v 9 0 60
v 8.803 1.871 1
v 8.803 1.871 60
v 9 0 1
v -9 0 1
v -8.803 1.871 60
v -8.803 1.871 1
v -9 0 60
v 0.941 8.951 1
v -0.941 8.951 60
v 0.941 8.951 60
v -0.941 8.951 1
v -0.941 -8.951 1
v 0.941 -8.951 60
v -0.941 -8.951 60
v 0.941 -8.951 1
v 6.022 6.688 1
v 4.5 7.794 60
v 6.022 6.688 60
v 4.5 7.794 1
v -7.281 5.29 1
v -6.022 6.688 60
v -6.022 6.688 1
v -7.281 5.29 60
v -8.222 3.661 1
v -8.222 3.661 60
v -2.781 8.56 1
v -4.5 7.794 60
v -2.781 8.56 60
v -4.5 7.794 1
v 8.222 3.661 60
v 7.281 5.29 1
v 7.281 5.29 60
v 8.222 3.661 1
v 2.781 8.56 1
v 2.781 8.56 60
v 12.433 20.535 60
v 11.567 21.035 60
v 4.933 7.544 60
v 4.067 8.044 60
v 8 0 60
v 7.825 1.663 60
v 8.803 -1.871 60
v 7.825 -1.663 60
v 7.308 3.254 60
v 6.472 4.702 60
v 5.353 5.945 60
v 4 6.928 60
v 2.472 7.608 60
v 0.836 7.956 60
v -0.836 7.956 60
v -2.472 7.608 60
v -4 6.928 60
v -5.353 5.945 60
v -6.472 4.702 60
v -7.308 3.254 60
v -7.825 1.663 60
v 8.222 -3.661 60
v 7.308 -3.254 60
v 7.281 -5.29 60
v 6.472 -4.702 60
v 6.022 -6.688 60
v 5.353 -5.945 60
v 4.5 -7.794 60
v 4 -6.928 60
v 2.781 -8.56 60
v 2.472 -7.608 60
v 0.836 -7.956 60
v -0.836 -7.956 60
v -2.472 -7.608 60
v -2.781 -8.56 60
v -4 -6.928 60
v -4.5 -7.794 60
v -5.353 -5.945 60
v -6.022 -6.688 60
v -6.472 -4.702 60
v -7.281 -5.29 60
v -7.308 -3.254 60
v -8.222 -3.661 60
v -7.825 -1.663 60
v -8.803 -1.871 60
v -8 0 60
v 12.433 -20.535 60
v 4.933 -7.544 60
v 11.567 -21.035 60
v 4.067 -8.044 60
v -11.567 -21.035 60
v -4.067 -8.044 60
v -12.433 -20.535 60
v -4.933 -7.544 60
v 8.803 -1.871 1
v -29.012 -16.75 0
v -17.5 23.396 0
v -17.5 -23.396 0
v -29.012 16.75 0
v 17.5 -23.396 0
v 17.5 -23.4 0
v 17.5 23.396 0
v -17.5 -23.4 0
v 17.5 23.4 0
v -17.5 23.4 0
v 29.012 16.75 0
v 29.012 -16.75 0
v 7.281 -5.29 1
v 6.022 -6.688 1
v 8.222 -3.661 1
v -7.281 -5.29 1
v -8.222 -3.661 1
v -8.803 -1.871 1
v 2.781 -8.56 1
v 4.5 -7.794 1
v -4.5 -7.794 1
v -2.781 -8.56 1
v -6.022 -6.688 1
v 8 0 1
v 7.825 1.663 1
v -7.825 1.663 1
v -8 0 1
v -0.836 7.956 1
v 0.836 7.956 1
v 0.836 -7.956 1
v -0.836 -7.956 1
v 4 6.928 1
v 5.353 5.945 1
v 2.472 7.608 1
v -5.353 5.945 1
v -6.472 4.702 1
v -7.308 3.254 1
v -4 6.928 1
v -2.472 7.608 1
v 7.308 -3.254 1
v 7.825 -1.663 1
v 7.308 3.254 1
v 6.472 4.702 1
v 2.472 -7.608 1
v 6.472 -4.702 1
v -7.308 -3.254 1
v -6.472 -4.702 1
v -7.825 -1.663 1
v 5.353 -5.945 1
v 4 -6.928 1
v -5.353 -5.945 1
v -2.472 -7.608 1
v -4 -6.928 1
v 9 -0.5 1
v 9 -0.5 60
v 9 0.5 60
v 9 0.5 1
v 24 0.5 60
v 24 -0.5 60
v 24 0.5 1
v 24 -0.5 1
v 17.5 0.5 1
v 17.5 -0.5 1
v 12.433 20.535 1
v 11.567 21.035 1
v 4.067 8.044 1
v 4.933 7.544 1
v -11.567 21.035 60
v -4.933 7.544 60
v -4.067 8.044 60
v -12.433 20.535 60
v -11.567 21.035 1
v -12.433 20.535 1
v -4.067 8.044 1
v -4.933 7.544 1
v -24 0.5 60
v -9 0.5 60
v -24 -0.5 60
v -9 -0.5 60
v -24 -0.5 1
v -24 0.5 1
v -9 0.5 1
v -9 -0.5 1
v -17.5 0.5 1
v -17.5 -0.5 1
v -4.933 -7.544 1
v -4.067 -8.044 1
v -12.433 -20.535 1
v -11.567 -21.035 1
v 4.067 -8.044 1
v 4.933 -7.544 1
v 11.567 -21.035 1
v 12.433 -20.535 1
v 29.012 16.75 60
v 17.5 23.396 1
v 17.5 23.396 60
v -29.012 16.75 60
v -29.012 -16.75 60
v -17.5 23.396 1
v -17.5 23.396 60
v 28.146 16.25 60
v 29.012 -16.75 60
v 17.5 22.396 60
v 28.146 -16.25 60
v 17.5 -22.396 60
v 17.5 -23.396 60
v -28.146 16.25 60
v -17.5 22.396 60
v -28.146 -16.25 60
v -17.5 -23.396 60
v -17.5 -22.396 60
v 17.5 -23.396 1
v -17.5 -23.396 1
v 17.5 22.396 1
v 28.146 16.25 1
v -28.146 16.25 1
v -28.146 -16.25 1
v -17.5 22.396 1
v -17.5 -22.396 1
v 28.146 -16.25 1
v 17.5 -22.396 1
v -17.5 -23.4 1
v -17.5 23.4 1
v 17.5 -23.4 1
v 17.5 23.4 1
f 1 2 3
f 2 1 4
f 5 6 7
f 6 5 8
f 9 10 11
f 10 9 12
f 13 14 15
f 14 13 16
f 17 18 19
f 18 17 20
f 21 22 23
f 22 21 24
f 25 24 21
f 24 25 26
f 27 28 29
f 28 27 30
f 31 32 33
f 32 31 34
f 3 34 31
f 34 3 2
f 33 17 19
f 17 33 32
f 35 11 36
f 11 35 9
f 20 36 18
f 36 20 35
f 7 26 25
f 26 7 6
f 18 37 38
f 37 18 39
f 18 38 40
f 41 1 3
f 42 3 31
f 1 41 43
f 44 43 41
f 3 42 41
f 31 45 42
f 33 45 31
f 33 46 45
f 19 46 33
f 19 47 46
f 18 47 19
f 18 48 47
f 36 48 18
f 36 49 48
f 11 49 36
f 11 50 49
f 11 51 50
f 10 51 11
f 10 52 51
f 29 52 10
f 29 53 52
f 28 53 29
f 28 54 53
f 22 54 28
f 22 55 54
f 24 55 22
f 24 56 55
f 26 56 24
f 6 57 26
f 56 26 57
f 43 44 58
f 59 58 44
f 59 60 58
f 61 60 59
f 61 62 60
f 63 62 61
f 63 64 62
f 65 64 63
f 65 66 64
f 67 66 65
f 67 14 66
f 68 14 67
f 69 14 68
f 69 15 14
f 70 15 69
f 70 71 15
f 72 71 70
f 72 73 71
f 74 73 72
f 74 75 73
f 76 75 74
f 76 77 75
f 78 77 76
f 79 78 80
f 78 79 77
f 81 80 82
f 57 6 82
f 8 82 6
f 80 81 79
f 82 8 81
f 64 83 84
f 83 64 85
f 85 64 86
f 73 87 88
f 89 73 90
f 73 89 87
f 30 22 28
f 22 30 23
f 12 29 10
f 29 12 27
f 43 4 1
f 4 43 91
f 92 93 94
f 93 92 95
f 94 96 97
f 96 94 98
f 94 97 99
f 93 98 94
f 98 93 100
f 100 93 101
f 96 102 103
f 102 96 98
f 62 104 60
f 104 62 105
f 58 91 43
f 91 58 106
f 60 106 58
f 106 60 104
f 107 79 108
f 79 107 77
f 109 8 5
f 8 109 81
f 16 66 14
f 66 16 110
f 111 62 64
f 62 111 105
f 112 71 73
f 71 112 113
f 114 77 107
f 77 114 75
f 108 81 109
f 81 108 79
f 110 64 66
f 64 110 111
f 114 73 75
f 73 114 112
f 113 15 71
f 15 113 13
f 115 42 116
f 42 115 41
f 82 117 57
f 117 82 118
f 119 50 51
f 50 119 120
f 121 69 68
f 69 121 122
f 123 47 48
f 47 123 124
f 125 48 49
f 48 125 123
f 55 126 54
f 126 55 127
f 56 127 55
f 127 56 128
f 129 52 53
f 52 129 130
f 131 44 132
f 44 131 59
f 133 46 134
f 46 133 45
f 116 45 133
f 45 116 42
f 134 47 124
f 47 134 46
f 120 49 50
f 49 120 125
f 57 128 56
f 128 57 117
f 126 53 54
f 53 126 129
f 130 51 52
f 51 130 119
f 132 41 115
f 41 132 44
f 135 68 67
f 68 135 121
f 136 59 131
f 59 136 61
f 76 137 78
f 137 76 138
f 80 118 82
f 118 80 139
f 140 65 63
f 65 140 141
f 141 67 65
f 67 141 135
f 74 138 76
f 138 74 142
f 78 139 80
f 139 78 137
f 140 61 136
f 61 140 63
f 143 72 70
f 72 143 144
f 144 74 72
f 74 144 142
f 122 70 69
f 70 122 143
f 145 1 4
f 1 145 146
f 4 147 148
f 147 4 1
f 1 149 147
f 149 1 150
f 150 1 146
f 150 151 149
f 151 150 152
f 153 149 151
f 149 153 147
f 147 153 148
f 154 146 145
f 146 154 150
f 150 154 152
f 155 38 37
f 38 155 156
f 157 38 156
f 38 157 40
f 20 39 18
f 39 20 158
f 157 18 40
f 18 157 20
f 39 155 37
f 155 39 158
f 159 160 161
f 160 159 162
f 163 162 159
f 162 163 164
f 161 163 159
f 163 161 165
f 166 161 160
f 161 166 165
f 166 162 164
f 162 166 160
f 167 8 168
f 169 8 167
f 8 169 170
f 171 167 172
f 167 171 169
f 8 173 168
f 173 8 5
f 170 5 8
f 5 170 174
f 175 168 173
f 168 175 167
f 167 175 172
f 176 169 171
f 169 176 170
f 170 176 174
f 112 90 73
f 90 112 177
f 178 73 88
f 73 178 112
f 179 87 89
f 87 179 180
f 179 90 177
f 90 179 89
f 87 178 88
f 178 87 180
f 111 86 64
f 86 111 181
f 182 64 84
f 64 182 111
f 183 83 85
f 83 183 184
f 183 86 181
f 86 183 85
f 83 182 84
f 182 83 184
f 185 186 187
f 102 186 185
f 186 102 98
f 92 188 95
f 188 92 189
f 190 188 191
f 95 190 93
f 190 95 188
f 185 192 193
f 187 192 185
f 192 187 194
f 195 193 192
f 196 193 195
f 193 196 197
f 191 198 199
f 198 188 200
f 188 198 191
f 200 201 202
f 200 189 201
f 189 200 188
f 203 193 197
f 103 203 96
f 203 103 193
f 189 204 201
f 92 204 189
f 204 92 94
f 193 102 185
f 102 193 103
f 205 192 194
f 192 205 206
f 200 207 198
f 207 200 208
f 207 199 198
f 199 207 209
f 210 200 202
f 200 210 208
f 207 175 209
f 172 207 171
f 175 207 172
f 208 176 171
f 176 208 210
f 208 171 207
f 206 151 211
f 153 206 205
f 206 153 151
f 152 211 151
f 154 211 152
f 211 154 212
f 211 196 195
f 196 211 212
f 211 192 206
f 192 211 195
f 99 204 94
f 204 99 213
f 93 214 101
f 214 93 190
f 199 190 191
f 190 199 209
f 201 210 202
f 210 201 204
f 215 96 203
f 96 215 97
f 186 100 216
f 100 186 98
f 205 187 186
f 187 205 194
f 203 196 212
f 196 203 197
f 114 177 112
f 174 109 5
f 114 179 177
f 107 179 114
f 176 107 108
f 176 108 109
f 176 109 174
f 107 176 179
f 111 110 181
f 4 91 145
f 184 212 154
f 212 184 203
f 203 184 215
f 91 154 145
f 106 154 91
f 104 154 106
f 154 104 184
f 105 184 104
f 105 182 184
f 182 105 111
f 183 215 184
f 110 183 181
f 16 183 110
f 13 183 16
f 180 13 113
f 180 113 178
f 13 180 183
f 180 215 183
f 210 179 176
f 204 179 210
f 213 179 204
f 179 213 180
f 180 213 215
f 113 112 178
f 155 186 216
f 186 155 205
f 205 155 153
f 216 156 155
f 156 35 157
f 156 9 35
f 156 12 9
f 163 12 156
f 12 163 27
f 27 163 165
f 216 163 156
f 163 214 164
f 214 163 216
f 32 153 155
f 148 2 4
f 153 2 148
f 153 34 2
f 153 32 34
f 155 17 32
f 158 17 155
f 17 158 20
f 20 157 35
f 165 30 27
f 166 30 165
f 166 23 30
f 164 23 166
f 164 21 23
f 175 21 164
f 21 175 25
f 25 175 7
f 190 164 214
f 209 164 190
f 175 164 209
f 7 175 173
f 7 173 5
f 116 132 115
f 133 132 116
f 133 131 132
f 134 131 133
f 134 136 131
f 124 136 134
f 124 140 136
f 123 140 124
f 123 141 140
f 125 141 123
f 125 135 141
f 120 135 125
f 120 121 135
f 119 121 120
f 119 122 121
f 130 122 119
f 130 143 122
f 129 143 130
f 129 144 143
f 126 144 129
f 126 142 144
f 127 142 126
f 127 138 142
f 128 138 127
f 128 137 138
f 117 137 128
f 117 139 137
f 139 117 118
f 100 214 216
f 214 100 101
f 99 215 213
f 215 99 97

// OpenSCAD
$fn=30;

difference(){
    cylinder(d=18,h=60);
    translate([0,0,-1])cylinder(d=16,h=62);
}

for (j=[0:60:300]){
    rotate([0,0,j])
    translate([9,-.5,0])
    cube([15,1,60]);
}

difference(){
    rotate([0,0,30])
    cylinder(d=67,h=60,$fn=6);
    rotate([0,0,30])translate([0,0,1])
    cylinder(d=65,h=65,$fn=6);
    translate([0,0,25])cube([35,70,72],center=true);
}

translate([0,0,0.5])
cube([35,46.8,1],center=true);
